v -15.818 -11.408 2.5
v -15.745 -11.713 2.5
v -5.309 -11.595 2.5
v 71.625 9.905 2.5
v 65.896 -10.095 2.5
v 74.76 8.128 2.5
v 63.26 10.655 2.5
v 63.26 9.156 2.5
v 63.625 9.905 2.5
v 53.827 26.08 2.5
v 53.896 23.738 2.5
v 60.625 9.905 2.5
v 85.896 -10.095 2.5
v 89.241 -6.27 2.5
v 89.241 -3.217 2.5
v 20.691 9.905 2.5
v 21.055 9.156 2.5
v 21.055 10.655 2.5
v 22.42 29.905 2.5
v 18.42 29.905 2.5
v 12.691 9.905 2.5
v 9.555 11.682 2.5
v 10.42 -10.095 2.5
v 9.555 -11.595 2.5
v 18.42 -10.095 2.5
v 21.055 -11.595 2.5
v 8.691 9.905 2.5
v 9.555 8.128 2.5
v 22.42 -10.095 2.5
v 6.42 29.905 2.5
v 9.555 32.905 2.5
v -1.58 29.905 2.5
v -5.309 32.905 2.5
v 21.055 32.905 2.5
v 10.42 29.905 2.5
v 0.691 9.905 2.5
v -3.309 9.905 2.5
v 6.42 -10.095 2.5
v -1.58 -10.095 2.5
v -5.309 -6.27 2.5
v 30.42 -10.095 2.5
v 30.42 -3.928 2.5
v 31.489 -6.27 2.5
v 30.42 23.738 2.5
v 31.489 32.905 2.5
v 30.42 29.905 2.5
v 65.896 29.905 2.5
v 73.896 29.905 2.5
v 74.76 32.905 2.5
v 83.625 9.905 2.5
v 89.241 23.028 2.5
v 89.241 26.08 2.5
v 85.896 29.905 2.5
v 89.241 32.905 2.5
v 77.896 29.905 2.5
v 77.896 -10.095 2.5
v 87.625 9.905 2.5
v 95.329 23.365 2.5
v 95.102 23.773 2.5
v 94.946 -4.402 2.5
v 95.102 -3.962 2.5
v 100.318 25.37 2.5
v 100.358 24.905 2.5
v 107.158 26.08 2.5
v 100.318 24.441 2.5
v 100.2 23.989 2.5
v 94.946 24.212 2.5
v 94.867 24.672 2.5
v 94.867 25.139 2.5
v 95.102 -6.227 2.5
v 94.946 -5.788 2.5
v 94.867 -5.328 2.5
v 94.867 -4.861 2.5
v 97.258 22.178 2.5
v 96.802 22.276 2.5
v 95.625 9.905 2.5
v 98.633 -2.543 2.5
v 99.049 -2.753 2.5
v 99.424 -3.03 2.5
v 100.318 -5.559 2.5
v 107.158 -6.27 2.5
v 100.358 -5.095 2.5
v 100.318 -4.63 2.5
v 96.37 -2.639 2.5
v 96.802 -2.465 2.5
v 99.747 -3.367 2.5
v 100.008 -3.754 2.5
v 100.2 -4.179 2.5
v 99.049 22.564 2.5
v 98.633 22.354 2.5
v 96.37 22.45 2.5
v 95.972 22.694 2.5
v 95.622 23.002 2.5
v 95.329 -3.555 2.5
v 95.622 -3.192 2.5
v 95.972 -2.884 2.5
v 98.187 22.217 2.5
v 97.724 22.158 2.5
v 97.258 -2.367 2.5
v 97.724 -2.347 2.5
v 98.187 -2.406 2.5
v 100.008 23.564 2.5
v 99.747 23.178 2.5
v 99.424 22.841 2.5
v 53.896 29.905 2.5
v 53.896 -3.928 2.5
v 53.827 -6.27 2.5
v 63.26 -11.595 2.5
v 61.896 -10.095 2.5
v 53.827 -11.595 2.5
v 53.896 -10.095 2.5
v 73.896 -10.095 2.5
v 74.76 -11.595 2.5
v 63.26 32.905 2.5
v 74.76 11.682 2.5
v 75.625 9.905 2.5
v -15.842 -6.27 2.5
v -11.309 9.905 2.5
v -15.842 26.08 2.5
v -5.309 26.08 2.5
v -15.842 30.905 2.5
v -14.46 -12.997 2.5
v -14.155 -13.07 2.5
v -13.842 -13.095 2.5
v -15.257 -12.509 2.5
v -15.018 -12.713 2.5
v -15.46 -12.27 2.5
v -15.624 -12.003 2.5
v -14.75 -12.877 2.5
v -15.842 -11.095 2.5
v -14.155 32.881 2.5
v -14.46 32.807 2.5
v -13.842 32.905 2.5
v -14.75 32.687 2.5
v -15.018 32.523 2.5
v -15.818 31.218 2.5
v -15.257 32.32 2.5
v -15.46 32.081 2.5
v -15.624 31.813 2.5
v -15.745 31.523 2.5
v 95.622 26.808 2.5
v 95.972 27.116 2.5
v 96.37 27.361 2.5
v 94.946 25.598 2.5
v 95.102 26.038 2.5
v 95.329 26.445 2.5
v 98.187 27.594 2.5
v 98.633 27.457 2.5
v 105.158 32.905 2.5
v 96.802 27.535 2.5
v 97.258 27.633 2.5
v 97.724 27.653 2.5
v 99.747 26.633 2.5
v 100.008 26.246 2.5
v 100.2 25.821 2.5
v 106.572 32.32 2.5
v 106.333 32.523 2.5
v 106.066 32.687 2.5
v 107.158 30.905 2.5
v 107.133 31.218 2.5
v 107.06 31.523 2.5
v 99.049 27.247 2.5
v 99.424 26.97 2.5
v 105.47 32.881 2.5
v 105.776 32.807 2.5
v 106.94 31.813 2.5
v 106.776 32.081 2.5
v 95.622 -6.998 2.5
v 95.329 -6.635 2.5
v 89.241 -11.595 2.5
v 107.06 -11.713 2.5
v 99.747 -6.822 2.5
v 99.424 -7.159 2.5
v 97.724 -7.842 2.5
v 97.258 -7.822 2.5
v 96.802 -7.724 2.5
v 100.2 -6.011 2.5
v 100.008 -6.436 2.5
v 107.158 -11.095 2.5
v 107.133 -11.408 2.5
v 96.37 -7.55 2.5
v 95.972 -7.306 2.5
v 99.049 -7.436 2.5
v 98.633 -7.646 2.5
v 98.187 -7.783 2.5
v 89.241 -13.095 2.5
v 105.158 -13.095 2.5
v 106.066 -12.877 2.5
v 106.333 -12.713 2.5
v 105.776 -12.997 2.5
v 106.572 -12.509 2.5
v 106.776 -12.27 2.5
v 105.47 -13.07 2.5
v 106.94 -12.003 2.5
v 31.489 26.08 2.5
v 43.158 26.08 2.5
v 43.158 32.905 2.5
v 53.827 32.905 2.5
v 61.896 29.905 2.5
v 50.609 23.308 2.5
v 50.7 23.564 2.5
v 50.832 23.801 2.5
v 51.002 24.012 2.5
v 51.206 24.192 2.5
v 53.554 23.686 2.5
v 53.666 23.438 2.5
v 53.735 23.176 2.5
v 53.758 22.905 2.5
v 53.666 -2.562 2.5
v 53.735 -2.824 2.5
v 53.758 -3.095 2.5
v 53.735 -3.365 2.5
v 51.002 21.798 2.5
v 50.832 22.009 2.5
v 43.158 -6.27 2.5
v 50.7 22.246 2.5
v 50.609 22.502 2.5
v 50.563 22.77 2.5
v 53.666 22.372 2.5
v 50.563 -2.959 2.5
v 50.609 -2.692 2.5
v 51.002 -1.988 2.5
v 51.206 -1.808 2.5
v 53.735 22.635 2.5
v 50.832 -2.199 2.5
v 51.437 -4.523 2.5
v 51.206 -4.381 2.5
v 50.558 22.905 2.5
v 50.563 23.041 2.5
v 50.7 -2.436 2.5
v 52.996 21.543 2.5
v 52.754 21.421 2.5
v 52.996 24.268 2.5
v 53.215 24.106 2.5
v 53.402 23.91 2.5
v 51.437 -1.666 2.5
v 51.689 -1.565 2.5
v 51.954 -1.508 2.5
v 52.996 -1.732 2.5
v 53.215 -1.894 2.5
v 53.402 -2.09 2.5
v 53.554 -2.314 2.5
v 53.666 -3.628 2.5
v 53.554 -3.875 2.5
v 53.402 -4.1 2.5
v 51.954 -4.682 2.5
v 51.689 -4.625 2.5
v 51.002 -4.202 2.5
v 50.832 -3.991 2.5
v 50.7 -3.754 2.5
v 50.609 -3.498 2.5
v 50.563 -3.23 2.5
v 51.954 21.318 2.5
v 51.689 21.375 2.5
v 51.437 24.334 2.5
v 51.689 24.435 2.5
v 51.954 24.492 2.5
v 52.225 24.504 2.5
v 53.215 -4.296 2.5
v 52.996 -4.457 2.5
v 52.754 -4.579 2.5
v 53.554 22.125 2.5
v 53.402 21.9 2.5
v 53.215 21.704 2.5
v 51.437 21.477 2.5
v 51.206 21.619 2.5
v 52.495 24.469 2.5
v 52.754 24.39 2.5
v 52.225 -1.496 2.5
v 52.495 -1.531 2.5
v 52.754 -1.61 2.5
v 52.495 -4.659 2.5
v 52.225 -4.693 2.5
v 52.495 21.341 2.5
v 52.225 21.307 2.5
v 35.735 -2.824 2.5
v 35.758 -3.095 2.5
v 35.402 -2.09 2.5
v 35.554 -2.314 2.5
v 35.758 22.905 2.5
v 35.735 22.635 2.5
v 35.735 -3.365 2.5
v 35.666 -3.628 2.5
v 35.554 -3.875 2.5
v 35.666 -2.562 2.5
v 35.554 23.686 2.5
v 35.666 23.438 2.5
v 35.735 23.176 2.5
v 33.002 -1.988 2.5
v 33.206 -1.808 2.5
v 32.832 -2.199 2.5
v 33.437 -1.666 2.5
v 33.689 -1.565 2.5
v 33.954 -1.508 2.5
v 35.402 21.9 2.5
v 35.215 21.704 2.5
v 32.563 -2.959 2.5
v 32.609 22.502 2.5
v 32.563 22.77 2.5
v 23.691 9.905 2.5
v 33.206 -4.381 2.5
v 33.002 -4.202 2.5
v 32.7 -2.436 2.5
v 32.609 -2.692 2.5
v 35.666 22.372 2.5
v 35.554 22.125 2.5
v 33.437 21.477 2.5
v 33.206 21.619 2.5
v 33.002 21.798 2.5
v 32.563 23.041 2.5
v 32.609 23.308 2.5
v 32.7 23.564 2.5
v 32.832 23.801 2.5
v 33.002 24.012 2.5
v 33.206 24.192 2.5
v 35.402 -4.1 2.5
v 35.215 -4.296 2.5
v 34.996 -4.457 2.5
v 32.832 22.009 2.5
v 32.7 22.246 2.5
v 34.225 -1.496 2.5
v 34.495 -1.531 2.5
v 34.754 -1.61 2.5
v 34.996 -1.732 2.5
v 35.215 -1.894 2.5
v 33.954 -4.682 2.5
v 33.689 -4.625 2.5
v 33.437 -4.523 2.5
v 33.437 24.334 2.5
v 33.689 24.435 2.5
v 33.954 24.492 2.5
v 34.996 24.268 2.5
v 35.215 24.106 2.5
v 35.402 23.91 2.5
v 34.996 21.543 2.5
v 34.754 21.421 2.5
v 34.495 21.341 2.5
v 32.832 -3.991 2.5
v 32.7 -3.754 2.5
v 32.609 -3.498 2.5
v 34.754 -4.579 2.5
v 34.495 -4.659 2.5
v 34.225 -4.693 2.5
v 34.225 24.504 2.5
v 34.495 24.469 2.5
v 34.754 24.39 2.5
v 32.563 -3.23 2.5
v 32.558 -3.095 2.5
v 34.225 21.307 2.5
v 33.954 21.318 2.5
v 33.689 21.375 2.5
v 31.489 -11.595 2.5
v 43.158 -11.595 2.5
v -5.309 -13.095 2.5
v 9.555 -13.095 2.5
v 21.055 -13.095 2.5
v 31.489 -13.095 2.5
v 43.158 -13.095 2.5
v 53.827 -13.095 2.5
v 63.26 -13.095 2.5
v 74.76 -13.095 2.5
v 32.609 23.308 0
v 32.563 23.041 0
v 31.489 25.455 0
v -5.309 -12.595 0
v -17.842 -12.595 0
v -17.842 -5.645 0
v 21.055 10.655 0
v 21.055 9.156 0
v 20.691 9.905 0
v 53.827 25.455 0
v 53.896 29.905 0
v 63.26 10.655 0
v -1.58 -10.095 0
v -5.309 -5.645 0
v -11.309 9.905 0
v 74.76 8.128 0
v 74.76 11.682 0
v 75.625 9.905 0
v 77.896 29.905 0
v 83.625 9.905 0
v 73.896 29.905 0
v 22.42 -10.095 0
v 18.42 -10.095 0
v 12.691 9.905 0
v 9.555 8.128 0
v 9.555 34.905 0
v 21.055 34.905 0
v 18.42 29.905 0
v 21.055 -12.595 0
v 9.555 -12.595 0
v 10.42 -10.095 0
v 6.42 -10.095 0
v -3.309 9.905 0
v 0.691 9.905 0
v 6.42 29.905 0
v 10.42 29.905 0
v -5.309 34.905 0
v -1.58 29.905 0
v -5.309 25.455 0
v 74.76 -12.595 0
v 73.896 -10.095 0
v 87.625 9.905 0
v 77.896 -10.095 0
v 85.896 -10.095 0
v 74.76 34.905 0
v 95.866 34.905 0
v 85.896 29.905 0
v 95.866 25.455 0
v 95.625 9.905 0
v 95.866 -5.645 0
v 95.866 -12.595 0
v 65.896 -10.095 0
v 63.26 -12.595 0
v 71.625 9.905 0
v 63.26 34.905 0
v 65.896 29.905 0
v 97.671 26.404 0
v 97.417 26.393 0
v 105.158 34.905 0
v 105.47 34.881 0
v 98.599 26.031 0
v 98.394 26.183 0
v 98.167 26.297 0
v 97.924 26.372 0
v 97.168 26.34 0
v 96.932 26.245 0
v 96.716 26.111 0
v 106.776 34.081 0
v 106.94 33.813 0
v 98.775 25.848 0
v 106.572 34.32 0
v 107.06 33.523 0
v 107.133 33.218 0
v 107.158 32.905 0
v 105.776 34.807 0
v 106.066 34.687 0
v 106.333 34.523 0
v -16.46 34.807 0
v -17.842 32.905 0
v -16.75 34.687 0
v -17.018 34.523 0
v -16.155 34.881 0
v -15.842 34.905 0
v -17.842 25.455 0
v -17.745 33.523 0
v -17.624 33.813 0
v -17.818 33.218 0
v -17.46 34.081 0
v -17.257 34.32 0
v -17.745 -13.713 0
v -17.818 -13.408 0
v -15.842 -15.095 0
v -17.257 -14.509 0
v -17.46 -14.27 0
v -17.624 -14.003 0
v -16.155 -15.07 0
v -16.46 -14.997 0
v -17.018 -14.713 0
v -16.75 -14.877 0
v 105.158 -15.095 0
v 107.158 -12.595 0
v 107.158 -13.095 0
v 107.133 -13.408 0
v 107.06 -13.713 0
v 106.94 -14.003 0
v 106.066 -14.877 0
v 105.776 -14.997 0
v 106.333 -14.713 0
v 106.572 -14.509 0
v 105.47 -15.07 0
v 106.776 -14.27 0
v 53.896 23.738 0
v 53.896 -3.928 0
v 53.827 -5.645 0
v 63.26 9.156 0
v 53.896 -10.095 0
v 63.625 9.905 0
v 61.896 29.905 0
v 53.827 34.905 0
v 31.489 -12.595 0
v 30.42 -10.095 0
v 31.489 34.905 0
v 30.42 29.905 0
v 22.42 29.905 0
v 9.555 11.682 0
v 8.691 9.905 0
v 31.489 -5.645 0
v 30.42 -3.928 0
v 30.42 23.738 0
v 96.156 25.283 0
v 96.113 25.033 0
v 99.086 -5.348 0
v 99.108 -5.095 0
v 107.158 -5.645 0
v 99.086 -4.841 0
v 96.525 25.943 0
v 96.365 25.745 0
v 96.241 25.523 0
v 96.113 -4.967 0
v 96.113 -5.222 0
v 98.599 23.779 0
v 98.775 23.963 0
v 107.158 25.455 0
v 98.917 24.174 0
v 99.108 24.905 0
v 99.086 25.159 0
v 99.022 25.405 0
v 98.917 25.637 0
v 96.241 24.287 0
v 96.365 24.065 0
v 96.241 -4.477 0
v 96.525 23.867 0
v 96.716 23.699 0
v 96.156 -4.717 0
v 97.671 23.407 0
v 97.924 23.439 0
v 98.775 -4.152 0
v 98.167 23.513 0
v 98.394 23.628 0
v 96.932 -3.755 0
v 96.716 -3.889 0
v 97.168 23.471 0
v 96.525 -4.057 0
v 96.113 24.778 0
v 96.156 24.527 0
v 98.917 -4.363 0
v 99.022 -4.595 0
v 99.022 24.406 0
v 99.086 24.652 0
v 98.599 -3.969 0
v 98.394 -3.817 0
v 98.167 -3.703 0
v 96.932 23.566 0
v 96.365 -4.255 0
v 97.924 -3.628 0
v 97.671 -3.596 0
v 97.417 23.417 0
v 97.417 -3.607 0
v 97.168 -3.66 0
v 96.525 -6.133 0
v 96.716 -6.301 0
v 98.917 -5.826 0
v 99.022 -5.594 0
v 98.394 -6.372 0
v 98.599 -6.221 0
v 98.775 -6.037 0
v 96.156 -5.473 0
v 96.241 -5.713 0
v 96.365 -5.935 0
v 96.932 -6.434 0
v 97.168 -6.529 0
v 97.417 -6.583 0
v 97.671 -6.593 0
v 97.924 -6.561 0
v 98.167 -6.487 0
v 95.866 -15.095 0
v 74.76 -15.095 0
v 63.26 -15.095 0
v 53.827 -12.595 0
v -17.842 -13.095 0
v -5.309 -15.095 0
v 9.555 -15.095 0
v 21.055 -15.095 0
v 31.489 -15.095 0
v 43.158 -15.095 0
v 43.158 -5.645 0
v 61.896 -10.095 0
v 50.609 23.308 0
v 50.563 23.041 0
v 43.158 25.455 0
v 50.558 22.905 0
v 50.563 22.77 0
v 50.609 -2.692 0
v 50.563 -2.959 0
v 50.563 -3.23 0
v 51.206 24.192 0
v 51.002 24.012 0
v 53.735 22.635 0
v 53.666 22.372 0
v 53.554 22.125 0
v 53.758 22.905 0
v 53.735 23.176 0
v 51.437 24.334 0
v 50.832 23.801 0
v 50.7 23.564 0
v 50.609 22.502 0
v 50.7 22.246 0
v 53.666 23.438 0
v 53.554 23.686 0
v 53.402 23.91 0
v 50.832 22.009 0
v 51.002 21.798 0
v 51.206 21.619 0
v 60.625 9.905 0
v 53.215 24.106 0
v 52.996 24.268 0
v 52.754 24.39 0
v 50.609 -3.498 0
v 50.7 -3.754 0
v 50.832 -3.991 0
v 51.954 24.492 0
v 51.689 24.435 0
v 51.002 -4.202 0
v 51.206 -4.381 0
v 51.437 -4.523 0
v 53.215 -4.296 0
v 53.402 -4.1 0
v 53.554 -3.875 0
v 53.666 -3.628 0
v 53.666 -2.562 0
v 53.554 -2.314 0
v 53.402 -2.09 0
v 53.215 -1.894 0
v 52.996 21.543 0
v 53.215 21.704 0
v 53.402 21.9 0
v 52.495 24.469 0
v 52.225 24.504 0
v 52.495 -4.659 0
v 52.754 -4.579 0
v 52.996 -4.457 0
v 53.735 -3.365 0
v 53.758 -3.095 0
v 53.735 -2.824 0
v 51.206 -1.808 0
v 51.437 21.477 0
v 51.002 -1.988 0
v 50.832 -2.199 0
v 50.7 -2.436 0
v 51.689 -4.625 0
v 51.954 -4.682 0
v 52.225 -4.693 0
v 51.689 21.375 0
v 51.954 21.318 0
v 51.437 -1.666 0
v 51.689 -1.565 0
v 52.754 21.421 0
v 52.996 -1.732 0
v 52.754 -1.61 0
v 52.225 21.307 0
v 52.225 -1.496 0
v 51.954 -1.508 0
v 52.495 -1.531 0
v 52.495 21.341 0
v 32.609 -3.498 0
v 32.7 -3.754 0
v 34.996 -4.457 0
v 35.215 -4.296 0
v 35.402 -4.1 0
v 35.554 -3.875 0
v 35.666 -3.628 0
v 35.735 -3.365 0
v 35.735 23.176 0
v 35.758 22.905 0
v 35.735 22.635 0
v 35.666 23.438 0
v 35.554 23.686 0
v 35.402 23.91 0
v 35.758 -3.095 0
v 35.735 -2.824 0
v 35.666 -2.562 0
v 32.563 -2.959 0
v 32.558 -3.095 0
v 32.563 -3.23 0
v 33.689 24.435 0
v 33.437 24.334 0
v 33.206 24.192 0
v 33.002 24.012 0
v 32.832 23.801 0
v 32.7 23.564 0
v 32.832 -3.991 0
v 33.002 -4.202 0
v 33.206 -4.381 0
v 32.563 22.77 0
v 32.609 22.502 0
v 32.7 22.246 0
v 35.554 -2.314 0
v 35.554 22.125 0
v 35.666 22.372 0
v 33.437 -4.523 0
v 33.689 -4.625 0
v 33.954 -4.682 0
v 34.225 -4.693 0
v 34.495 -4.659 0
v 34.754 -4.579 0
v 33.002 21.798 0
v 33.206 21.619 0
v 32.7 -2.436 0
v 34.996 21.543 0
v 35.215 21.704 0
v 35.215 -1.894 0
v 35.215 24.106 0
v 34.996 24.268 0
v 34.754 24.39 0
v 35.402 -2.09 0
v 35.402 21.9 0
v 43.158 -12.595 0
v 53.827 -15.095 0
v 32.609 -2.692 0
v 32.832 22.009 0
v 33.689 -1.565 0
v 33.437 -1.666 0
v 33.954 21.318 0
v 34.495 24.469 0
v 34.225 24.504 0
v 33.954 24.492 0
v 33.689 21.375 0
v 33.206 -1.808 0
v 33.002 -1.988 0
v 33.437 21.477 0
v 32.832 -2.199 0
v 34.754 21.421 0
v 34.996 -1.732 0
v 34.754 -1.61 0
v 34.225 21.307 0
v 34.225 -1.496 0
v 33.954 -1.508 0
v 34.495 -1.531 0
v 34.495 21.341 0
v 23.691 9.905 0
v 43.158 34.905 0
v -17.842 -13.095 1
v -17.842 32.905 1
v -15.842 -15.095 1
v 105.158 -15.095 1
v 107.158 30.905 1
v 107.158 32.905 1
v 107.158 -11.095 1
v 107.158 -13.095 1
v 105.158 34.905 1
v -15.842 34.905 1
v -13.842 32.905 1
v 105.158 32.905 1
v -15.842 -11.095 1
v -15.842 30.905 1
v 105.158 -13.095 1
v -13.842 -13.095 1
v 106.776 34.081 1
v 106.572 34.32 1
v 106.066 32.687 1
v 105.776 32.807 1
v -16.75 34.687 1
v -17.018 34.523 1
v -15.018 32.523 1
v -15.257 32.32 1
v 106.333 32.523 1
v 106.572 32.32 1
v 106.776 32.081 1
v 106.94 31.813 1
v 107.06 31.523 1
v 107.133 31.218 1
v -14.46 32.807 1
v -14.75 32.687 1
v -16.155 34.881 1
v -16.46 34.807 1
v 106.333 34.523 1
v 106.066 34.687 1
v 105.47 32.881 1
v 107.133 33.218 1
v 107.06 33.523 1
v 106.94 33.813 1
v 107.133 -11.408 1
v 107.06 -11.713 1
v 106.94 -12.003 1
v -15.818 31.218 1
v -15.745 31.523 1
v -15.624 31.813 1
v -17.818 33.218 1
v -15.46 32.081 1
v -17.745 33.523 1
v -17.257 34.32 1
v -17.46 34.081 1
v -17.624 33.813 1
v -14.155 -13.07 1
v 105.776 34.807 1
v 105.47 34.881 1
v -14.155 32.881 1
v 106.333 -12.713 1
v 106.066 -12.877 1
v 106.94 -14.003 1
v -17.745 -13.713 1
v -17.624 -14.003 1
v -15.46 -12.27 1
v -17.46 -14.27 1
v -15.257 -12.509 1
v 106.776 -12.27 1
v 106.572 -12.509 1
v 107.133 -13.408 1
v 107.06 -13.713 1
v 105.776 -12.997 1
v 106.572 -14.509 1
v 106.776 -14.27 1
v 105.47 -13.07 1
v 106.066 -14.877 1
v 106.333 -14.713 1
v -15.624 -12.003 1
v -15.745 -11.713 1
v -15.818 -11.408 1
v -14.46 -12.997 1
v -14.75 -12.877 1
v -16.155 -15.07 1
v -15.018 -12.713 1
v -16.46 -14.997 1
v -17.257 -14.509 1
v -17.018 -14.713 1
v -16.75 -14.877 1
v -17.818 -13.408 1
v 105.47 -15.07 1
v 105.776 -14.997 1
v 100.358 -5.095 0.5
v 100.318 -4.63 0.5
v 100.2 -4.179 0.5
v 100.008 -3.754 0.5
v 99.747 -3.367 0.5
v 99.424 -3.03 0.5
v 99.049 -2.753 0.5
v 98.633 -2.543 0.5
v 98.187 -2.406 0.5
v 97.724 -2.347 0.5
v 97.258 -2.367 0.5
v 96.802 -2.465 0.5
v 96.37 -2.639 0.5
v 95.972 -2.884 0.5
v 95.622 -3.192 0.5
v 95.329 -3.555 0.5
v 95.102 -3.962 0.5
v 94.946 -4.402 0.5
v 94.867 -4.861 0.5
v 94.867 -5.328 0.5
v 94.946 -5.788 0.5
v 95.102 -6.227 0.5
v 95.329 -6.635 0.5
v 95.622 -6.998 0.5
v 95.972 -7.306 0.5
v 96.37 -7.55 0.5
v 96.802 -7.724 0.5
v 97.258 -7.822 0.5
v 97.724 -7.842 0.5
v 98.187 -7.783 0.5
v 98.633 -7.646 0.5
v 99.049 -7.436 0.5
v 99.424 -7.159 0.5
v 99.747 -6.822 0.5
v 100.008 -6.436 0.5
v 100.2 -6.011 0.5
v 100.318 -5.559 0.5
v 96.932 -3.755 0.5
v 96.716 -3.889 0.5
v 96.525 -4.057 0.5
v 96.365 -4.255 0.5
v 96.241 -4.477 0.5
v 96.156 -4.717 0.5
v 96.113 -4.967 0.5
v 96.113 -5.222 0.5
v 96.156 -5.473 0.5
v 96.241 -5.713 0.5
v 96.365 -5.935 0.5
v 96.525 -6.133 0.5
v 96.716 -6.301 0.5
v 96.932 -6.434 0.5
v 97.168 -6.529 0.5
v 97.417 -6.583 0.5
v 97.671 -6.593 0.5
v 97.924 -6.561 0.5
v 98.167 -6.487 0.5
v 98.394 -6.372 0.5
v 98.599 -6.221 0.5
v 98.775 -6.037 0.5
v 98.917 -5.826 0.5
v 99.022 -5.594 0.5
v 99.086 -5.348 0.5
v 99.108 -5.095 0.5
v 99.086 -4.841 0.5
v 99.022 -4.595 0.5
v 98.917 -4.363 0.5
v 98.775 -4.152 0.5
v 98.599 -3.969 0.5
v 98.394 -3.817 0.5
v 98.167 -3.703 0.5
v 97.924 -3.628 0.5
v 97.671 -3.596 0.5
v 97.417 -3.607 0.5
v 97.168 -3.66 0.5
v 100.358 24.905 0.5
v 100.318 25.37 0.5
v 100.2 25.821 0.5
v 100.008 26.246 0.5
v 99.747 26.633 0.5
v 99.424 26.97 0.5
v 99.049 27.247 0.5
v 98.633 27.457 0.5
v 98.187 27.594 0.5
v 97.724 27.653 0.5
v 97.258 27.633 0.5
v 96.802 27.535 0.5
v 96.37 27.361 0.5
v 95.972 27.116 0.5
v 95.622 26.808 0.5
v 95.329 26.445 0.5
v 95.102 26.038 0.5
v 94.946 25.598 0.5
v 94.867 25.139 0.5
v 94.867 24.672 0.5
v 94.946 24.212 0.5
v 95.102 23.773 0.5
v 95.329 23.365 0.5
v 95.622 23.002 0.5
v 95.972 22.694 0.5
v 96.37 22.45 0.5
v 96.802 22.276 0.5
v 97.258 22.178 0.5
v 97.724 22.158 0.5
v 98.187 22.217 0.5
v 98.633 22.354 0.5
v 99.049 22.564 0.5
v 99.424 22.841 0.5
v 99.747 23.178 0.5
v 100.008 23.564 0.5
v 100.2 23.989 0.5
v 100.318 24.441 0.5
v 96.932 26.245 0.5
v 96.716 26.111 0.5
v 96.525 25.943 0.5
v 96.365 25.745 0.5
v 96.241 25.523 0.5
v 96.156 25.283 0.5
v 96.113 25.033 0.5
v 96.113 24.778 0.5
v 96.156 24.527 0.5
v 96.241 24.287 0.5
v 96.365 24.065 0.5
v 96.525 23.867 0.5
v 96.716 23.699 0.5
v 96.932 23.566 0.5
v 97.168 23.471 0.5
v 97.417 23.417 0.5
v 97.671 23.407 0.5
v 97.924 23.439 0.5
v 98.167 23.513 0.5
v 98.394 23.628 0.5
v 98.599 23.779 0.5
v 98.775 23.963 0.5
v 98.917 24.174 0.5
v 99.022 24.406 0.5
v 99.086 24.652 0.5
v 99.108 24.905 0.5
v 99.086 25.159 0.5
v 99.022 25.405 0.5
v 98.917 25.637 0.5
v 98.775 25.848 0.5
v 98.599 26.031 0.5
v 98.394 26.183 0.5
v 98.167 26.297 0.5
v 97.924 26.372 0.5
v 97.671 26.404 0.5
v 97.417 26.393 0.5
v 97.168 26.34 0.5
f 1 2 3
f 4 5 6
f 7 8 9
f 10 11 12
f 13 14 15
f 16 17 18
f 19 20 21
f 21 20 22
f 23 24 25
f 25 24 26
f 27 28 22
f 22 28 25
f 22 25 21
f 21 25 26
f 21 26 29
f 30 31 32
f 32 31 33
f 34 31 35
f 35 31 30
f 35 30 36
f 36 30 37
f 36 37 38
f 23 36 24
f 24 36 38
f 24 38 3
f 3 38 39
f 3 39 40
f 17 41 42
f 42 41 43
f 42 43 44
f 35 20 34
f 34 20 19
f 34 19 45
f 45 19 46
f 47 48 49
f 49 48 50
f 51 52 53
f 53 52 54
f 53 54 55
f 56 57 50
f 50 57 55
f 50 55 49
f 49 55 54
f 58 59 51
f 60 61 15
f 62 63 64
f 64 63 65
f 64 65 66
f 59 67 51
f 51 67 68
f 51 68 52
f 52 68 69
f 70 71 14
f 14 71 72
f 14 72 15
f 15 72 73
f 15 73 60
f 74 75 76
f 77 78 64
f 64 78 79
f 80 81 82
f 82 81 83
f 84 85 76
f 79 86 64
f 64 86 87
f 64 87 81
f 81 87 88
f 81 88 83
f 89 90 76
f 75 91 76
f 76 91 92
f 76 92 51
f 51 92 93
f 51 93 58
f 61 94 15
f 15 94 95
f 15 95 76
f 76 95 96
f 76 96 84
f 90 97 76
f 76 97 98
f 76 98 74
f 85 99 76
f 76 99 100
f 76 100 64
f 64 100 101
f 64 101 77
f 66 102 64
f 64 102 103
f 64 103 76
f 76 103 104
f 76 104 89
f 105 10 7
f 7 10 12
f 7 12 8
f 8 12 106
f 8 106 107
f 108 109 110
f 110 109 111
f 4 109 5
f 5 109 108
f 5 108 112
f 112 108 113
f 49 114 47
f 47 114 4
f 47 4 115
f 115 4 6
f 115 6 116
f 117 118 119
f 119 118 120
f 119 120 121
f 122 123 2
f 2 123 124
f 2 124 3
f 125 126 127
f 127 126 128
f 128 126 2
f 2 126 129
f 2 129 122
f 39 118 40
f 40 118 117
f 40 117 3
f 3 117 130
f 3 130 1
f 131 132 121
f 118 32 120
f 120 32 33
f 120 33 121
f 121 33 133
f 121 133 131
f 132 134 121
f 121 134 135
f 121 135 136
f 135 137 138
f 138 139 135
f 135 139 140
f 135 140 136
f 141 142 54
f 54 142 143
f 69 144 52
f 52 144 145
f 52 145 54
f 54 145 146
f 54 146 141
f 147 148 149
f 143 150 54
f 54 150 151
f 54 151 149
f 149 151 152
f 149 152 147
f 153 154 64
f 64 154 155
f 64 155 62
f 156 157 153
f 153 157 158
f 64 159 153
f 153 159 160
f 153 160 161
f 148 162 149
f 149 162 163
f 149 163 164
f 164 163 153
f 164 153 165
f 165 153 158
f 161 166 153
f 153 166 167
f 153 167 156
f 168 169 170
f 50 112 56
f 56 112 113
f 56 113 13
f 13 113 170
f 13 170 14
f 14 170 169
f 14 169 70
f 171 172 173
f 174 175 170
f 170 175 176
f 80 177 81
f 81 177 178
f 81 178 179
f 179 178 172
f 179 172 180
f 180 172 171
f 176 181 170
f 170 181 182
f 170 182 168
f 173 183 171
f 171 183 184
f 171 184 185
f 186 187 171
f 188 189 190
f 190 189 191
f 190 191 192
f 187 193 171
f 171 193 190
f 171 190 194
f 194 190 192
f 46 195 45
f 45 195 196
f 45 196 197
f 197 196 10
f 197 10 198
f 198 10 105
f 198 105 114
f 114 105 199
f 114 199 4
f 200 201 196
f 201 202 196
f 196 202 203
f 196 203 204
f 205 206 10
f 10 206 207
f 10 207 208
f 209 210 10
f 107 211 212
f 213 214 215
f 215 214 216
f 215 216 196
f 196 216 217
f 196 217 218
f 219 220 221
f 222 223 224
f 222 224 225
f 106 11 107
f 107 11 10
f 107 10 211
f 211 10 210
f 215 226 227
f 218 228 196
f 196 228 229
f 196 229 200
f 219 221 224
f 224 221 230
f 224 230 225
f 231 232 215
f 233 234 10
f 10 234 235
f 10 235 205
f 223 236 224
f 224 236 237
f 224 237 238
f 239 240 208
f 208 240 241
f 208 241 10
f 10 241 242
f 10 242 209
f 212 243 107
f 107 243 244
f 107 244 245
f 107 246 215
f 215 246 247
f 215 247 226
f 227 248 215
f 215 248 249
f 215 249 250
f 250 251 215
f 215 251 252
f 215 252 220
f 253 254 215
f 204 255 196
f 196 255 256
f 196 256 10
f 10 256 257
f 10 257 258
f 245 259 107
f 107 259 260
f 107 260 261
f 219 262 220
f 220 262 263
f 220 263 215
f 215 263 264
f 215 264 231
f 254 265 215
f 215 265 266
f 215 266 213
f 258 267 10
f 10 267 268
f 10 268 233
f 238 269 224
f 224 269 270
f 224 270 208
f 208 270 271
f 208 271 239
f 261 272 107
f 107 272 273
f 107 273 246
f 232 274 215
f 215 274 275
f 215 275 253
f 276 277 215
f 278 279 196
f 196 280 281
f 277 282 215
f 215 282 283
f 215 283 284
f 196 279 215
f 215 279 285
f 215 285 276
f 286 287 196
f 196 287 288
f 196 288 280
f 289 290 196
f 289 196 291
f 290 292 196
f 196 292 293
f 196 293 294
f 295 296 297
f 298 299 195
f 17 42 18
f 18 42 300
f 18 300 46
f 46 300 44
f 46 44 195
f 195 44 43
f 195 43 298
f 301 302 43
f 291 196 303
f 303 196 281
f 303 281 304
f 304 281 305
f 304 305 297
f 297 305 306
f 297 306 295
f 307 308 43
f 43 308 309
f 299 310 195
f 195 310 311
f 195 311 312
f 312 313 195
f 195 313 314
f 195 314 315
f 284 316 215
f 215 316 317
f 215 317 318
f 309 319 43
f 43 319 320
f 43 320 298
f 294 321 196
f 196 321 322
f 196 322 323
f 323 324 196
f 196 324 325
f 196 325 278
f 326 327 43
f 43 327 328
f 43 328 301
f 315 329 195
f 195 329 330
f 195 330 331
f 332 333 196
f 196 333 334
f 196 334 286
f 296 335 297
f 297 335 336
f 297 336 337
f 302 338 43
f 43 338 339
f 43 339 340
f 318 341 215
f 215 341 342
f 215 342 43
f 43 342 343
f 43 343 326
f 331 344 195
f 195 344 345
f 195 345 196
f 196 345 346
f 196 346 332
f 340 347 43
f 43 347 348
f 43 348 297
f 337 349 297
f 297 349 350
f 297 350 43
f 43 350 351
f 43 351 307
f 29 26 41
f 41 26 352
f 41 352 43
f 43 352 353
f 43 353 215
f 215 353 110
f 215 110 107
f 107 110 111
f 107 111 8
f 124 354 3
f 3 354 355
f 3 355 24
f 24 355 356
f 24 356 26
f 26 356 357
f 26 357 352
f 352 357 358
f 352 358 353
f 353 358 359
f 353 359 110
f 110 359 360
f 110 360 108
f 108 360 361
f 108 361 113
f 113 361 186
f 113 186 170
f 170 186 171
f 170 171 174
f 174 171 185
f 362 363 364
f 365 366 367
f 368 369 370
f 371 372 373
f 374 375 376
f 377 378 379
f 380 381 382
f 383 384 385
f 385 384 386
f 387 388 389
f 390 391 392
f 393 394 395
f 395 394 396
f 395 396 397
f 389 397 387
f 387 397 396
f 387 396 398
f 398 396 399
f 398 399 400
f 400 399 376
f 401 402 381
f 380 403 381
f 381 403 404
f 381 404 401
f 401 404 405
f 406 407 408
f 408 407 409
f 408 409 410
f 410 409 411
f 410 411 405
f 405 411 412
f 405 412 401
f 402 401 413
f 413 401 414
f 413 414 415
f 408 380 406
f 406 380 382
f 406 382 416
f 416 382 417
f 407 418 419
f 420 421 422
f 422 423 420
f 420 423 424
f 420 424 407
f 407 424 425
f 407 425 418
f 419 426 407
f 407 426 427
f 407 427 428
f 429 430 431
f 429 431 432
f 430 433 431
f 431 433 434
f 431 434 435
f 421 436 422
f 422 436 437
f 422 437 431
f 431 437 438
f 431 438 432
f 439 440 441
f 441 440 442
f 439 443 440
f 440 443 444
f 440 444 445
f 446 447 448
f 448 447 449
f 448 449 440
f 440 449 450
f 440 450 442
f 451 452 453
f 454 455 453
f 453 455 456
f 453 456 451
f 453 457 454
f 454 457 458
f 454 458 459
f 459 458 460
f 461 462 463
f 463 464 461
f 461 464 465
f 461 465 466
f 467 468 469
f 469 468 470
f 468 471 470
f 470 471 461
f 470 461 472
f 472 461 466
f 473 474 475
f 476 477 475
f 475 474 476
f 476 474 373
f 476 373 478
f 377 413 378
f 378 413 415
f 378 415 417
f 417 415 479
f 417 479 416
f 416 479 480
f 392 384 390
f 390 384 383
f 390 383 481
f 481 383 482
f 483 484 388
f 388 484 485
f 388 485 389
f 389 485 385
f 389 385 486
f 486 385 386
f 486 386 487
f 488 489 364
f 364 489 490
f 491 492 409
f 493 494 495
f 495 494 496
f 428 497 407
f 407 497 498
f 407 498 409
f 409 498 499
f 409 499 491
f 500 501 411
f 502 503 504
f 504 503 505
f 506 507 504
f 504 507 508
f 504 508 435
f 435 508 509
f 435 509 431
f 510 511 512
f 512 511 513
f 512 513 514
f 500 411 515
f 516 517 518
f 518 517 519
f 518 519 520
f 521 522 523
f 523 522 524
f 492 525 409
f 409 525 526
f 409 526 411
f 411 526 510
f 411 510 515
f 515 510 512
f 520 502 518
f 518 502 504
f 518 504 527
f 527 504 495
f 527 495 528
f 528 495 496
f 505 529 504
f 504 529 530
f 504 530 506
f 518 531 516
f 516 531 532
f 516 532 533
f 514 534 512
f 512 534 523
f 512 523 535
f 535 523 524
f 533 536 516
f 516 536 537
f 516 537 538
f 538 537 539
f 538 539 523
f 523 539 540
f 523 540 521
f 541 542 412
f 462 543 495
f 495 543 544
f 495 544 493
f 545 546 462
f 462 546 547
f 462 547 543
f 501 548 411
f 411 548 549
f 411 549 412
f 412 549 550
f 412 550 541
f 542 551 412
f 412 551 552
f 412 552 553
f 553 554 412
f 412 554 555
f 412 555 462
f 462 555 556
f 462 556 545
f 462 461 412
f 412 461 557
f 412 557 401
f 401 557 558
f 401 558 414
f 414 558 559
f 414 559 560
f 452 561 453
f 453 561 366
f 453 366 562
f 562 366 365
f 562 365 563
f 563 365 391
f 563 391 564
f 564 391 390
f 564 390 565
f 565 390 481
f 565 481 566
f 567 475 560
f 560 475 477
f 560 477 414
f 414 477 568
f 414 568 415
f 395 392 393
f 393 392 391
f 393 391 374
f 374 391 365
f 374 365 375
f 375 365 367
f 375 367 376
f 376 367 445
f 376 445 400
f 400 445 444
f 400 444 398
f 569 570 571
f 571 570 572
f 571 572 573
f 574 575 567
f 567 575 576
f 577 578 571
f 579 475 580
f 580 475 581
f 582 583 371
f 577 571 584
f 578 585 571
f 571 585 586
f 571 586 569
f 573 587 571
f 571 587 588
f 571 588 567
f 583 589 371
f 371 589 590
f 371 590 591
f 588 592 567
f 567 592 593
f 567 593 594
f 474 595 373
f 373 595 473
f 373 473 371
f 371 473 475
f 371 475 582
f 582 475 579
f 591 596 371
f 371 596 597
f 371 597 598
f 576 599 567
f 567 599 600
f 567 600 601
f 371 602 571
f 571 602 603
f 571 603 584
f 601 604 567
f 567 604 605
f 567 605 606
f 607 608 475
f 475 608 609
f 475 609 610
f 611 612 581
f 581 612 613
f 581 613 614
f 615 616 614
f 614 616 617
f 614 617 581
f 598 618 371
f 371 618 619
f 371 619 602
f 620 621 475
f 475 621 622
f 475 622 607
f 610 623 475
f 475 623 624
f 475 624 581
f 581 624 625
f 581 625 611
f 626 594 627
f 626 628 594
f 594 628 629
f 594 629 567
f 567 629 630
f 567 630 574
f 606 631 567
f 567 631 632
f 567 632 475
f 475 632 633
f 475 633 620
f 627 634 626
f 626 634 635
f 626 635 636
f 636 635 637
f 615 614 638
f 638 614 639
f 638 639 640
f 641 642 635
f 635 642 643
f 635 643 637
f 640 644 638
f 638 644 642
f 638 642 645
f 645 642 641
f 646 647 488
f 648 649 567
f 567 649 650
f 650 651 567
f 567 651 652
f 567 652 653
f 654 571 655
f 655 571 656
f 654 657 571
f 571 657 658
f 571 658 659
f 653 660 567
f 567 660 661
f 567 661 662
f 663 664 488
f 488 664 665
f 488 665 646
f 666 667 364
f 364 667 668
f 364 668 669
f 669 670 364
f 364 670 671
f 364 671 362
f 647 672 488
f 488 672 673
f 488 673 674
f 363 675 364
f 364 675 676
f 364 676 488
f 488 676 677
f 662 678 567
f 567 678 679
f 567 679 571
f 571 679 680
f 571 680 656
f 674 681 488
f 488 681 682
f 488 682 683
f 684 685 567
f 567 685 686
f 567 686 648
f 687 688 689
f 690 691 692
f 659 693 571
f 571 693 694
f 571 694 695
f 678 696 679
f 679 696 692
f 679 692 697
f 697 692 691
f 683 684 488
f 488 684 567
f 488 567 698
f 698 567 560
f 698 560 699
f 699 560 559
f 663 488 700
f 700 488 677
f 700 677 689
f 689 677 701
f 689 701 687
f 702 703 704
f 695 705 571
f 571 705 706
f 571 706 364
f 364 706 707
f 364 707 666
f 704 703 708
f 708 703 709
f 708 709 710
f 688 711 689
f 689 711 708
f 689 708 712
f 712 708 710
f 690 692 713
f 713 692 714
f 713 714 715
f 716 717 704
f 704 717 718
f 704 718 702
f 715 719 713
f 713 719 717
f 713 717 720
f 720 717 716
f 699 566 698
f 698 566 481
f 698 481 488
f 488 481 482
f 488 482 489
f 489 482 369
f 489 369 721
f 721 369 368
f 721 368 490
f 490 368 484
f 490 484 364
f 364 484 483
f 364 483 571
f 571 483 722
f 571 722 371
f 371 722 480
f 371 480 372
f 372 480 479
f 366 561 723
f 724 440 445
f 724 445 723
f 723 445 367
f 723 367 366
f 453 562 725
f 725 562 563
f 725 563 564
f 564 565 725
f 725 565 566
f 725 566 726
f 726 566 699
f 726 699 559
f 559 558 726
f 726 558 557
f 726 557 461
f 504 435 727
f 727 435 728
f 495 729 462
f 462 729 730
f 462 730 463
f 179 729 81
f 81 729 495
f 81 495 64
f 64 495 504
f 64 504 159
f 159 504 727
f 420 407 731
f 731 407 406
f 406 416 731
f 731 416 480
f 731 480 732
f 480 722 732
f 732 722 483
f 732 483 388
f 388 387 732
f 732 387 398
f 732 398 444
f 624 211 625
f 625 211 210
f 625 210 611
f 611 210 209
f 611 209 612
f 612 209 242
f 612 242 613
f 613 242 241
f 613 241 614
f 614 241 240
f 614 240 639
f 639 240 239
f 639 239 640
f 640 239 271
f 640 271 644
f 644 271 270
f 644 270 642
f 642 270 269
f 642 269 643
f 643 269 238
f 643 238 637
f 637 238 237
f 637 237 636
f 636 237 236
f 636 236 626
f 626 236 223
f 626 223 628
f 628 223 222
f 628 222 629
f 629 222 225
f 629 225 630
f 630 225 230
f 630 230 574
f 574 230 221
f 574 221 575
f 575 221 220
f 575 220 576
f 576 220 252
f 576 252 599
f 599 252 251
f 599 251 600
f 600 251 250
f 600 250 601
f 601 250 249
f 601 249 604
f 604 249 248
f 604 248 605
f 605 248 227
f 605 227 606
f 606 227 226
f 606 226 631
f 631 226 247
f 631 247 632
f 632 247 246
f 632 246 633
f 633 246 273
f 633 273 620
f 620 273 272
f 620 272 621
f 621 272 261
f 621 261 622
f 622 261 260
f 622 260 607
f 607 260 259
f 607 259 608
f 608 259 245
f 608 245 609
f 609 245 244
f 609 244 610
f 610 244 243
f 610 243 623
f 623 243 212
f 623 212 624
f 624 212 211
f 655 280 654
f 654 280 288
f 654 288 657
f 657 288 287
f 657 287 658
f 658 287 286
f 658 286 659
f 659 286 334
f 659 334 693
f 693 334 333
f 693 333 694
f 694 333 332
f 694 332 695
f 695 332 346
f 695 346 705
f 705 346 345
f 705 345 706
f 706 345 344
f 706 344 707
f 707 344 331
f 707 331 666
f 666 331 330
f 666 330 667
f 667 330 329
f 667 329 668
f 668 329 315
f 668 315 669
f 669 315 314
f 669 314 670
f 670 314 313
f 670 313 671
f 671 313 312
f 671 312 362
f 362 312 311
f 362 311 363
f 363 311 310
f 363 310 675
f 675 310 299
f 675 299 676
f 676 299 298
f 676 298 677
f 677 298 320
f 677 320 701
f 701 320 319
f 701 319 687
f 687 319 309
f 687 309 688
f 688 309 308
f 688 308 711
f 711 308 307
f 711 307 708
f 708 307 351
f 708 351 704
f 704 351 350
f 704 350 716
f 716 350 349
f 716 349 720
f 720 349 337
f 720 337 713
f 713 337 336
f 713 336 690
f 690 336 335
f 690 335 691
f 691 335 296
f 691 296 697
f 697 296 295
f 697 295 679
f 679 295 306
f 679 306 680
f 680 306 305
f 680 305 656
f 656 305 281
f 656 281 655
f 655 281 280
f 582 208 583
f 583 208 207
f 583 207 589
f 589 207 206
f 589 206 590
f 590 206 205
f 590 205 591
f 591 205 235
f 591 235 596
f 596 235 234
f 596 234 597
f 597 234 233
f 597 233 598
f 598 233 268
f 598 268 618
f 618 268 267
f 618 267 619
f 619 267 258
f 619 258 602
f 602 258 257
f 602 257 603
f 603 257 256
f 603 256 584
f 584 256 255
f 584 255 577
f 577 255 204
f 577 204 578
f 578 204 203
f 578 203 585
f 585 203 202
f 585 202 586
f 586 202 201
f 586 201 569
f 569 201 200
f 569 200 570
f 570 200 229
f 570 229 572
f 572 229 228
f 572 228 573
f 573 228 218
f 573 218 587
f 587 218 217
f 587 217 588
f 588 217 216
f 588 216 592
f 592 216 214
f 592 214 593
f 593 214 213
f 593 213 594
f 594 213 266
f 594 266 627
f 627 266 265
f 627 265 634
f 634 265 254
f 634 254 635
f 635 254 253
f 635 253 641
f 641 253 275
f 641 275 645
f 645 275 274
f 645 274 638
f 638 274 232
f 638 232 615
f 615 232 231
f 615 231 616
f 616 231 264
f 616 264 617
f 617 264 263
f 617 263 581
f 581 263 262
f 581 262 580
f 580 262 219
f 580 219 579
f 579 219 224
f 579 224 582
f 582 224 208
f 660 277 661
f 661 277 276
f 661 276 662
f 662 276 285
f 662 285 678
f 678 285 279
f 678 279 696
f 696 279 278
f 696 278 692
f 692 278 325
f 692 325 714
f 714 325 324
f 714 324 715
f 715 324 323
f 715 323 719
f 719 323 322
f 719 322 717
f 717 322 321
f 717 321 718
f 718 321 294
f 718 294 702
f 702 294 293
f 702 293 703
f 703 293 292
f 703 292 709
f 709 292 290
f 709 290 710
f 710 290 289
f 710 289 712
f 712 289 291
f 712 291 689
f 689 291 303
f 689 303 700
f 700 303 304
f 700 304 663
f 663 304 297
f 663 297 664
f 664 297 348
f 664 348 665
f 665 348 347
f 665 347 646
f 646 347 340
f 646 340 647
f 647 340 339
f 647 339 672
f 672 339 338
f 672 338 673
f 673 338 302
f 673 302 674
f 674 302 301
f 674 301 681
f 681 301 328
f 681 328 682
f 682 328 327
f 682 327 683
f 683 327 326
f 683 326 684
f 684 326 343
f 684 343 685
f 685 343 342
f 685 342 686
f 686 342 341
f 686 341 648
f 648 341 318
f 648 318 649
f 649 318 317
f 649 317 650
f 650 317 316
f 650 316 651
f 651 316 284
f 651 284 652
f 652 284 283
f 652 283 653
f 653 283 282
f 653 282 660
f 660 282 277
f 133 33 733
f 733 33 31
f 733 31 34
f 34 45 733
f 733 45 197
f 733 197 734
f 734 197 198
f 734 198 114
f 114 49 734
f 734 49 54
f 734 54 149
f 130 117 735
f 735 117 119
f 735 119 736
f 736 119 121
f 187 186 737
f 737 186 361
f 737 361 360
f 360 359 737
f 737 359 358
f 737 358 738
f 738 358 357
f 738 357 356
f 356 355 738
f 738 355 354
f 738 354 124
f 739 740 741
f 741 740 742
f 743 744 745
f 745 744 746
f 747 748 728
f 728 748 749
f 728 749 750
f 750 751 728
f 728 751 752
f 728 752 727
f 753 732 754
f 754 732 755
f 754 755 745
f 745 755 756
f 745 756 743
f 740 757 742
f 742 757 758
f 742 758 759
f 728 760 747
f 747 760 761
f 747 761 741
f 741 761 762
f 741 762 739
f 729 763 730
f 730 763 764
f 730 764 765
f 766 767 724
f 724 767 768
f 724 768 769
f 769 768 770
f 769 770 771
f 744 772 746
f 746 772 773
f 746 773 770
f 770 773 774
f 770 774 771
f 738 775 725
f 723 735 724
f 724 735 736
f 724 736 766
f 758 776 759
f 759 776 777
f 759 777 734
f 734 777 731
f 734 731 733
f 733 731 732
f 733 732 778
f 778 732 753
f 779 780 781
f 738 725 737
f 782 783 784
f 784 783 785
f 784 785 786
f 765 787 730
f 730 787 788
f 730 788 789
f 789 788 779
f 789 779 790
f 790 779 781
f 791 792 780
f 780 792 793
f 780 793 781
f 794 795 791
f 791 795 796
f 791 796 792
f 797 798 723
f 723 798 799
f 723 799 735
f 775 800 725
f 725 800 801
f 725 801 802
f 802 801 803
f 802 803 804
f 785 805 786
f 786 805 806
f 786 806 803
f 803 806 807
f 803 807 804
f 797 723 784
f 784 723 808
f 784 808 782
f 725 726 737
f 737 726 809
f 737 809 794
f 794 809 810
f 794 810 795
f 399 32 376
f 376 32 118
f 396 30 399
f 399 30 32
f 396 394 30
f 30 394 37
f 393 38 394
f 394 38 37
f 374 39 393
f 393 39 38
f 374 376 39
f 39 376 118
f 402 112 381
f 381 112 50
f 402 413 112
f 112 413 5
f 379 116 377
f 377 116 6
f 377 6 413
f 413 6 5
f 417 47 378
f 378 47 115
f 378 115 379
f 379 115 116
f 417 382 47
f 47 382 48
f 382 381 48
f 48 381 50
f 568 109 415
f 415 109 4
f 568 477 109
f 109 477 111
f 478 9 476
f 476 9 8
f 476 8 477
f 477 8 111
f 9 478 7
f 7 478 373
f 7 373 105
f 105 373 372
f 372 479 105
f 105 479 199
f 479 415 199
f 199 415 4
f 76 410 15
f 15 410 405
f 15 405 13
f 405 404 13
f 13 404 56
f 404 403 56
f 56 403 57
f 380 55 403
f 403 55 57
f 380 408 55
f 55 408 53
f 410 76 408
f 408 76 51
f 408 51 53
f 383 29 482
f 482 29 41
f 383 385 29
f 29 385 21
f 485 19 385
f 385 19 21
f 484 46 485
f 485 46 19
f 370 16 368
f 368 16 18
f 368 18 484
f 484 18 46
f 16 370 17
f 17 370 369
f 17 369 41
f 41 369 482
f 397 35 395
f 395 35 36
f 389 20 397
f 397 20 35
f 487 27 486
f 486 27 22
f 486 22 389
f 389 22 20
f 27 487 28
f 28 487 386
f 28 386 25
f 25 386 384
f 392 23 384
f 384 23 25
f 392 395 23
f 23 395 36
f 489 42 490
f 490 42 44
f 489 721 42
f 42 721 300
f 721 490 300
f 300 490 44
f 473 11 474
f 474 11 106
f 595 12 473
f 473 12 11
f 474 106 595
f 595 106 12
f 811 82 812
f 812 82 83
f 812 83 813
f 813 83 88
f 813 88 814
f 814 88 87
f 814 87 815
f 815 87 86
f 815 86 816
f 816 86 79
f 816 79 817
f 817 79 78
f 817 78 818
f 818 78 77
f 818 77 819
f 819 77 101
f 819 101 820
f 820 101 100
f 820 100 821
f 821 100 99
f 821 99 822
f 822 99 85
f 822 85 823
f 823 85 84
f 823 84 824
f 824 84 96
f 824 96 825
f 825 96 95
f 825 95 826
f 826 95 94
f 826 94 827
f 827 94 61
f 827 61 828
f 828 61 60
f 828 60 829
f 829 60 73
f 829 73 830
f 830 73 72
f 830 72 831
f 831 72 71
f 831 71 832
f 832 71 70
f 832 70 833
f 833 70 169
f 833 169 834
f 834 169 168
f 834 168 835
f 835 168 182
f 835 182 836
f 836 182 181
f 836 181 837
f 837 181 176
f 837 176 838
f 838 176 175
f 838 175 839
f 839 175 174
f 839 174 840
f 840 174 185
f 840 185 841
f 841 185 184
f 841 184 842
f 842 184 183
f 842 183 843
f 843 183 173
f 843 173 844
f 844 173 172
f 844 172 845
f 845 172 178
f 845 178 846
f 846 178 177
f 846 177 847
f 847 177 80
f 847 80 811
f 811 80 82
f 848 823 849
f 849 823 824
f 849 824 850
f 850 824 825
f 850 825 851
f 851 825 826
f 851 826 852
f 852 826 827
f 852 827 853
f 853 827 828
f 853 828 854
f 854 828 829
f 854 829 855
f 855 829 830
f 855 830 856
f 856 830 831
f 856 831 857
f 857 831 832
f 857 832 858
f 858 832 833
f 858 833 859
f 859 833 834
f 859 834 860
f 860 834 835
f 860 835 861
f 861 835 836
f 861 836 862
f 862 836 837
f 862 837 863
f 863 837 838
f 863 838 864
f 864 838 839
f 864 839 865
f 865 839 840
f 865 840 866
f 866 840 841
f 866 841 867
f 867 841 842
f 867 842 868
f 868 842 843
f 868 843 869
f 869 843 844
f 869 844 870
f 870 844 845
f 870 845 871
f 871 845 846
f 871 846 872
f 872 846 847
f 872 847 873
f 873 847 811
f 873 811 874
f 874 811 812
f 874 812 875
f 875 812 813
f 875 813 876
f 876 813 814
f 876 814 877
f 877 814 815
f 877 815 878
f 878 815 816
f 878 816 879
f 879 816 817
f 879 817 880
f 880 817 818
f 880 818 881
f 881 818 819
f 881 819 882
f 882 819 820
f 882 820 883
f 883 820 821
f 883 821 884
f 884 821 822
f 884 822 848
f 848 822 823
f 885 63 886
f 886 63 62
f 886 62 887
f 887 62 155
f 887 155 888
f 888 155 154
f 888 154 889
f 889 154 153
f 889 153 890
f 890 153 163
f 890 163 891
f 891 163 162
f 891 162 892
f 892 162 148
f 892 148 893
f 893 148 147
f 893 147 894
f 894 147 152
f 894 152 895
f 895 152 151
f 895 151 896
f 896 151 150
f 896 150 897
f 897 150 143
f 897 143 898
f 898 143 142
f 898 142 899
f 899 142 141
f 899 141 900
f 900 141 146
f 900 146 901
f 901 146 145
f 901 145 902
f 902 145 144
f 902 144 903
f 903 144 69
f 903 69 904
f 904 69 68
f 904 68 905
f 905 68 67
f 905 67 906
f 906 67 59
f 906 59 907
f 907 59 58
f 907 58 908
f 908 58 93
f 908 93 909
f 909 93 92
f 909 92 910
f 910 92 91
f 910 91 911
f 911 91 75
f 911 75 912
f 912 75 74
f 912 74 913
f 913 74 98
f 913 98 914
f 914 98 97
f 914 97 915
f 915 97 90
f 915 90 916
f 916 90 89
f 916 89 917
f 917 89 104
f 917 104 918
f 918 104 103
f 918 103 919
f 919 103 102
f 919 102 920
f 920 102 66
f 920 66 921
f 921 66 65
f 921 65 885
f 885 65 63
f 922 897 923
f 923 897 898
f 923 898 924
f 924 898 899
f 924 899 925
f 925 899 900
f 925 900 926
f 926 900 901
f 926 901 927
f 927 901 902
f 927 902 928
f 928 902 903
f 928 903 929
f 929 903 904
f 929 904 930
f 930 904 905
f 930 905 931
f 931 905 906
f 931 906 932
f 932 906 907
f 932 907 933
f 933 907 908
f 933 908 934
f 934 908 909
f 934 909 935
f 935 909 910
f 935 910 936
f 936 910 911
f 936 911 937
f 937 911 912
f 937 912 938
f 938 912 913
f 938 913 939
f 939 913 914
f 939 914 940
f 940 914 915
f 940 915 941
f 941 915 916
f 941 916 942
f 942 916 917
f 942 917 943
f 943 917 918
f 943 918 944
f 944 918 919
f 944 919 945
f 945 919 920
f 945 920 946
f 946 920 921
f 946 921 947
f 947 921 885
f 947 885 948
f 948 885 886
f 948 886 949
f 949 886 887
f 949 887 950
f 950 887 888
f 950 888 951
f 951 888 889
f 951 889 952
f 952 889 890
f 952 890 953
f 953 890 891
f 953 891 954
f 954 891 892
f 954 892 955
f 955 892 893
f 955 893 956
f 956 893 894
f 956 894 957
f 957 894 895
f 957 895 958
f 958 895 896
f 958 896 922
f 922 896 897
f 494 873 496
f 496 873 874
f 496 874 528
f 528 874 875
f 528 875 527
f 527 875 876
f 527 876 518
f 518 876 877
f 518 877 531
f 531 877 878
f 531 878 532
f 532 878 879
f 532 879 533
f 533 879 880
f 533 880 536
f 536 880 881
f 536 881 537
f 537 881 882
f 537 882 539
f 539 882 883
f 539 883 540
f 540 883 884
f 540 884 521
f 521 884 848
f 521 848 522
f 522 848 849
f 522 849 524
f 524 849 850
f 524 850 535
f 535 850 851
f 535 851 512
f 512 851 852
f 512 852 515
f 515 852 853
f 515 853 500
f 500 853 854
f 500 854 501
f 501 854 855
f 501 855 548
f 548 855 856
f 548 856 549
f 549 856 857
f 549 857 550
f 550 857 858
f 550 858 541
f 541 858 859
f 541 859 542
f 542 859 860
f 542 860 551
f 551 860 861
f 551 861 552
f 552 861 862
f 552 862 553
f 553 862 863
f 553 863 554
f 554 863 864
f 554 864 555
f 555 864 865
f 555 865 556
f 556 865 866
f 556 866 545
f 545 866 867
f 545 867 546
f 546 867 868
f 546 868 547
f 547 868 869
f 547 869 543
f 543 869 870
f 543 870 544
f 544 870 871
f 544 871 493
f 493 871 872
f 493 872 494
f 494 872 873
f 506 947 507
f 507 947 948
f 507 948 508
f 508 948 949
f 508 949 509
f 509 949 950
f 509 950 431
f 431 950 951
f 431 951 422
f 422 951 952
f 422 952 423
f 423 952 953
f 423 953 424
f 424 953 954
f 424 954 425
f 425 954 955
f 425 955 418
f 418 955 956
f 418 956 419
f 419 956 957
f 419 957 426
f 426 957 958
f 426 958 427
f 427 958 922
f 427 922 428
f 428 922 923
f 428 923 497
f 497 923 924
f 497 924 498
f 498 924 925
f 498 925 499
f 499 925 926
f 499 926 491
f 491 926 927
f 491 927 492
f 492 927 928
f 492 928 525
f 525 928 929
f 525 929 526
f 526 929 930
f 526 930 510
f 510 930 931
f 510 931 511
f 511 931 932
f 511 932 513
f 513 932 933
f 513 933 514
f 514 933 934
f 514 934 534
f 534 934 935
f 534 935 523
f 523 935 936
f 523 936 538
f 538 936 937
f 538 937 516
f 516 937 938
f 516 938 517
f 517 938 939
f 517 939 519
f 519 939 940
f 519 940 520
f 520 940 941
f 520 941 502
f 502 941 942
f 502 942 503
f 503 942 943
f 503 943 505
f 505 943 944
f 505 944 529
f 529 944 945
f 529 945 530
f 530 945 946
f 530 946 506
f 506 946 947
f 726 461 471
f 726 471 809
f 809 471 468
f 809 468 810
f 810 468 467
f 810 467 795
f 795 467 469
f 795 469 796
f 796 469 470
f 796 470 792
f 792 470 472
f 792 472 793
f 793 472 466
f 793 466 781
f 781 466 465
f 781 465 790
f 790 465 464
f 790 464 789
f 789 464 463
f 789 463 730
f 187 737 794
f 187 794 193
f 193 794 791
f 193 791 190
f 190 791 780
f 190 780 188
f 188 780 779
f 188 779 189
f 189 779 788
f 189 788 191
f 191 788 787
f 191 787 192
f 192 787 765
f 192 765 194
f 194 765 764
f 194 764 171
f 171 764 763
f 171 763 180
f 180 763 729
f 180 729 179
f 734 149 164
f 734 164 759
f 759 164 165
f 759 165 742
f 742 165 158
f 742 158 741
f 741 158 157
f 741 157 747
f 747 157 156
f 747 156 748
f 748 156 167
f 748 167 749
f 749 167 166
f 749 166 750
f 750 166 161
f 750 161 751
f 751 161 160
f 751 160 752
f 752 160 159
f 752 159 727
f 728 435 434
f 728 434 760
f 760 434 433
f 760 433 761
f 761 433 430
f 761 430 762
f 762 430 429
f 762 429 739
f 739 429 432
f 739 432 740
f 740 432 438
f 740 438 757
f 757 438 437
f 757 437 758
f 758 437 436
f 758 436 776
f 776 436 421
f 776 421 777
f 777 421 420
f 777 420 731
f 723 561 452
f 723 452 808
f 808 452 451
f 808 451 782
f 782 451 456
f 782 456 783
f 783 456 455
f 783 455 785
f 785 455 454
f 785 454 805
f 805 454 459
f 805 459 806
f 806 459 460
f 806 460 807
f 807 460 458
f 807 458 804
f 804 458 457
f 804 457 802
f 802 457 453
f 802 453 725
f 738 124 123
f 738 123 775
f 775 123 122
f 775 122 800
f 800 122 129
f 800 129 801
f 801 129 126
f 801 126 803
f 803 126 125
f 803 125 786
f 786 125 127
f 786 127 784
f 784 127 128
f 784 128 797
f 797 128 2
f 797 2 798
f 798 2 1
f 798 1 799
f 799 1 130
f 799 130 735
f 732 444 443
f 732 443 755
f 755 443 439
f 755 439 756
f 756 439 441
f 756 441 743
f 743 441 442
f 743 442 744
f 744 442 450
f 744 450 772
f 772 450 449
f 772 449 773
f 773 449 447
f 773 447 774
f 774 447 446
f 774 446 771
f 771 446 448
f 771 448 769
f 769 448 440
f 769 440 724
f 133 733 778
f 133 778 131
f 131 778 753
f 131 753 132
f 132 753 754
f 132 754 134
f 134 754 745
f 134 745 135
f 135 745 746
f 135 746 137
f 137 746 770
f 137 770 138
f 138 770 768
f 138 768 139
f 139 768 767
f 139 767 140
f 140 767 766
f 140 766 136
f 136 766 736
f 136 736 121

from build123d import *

# Parameters (mm, degrees)
ESBO_O1_W                  = 125
ESBO_O1_H                  = 50
RESSALTO_EXTRUS_O1_DEPTH   = 2.5
ESBO_O2_R                  = 1.6
CORTE_EXTRUS_O2_DEPTH      = 2.5
CORTE_EXTRUS_O3_DEPTH      = 1.5
CORTE_EXTRUS_O5_DEPTH      = 113.726994752
CORTE_EXTRUS_O5_DEPTH_BACK = 113.726994752
ESBO_O12_R                 = 2.75
CORTE_EXTRUS_O6_DEPTH      = 2
ESBO_O19_R                 = 1.5
CORTE_EXTRUS_O7_DEPTH      = 2
FILETE1_R                  = 2


with BuildPart() as part:
    # Esboço1 → Ressalto-extrusão1 (new body)
    with BuildSketch(Plane.XY):
        with Locations((44.657564369, 9.905325444)):
            Rectangle(ESBO_O1_W, ESBO_O1_H)
    extrude(amount=RESSALTO_EXTRUS_O1_DEPTH)

    # Esboço2 → Corte-extrusão2 (cut)
    with BuildSketch(Plane.XY.offset(2.5)):
        with Locations((34.157564369, 22.905325444)):
            Circle(ESBO_O2_R)
        with Locations(Location((34.157564369, -3.094674556, 0), (0, 0, 180))):
            Circle(ESBO_O2_R)
        with Locations((52.157564369, -3.094674556)):
            Circle(ESBO_O2_R)
        with Locations(Location((52.157564369, 22.905325444, 0), (0, 0, 180))):
            Circle(ESBO_O2_R)
    extrude(amount=-CORTE_EXTRUS_O2_DEPTH, mode=Mode.SUBTRACT)

    # Esboço3 → Corte-extrusão3 (cut)
    with BuildSketch(Plane.XY.offset(2.5)):
        Polygon((-17.842435631, 32.905325444), (-17.842435631, 9.905325444), (-15.842435631, 9.905325444), (-15.842435631, 32.905325444), (107.157564369, 32.905325444), (107.157564369, 34.905325444), (-15.842435631, 34.905325444), (-17.842435631, 34.905325444), align=None)
        Polygon((-15.842435631, 9.905325444), (-17.842435631, 9.905325444), (-17.842435631, -13.094674556), (-17.842435631, -15.094674556), (-15.842435631, -15.094674556), (107.157564369, -15.094674556), (107.157564369, -13.094674556), (-15.842435631, -13.094674556), align=None)
    extrude(amount=-CORTE_EXTRUS_O3_DEPTH, mode=Mode.SUBTRACT)

    # Esboço4 → Corte-extrusão5 (cut, two sides: drawn at the far end of the back side and taken through both)
    with BuildSketch(Plane.XY.offset(2.5).offset(-CORTE_EXTRUS_O5_DEPTH_BACK)):
        Polygon((0.690585312, 9.905325444), (10.419553485, -10.094674556), (18.419553485, -10.094674556), (8.690585312, 9.905325444), (18.419553485, 29.905325444), (10.419553485, 29.905325444), align=None)
        Polygon((20.690585312, 9.905325444), (30.419553485, 29.905325444), (22.419553485, 29.905325444), (12.690585312, 9.905325444), (22.419553485, -10.094674556), (30.419553485, -10.094674556), align=None)
        Polygon((30.419553485, 23.738176067), (23.690585312, 9.905325444), (30.419553485, -3.927525179), align=None)
        Polygon((-11.309414688, 9.905325444), (-1.580446515, -10.094674556), (6.419553485, -10.094674556), (-3.309414688, 9.905325444), (6.419553485, 29.905325444), (-1.580446515, 29.905325444), align=None)
        Polygon((95.624543426, 9.905325444), (85.895575254, 29.905325444), (77.895575254, 29.905325444), (87.624543426, 9.905325444), (77.895575254, -10.094674556), (85.895575254, -10.094674556), align=None)
        Polygon((83.624543426, 9.905325444), (73.895575254, 29.905325444), (65.895575254, 29.905325444), (75.624543426, 9.905325444), (65.895575254, -10.094674556), (73.895575254, -10.094674556), align=None)
        Polygon((71.624543426, 9.905325444), (61.895575254, 29.905325444), (53.895575254, 29.905325444), (63.624543426, 9.905325444), (53.895575254, -10.094674556), (61.895575254, -10.094674556), align=None)
        Polygon((60.624543426, 9.905325444), (53.895575254, -3.927525179), (53.895575254, 23.738176067), align=None)
    extrude(amount=CORTE_EXTRUS_O5_DEPTH + CORTE_EXTRUS_O5_DEPTH_BACK, mode=Mode.SUBTRACT)

    # Esboço12 → Corte-extrusão6 (cut)
    with BuildSketch(Plane.XY.offset(2.5)):
        with Locations((97.607564369, 24.905325444)):
            Circle(ESBO_O12_R)
        with Locations((97.607564369, -5.094674556)):
            Circle(ESBO_O12_R)
    extrude(amount=-CORTE_EXTRUS_O6_DEPTH, mode=Mode.SUBTRACT)

    # Esboço19 → Corte-extrusão7 (cut)
    with BuildSketch(Plane.XY.offset(0.5)):
        with Locations((97.607564369, 24.905325444)):
            Circle(ESBO_O19_R)
        with Locations((97.607564369, -5.094674556)):
            Circle(ESBO_O19_R)
    extrude(amount=-CORTE_EXTRUS_O7_DEPTH, mode=Mode.SUBTRACT)

    # Filete1
    filete1_edges = [part.edges().sort_by_distance(p)[0] for p in [
        (-17.842435631, -15.094674556, 0.5),
        (-15.842435631, -13.094674556, 1.75),
        (-17.842435631, 34.905325444, 0.5),
        (-15.842435631, 32.905325444, 1.75),
        (107.157564369, -15.094674556, 0.5),
        (107.157564369, -13.094674556, 1.75),
        (107.157564369, 32.905325444, 1.75),
        (107.157564369, 34.905325444, 0.5),
    ]]
    fillet(filete1_edges, radius=FILETE1_R - 0.0001)  # a hair under: the kernel refuses the full size


solid = part.part
